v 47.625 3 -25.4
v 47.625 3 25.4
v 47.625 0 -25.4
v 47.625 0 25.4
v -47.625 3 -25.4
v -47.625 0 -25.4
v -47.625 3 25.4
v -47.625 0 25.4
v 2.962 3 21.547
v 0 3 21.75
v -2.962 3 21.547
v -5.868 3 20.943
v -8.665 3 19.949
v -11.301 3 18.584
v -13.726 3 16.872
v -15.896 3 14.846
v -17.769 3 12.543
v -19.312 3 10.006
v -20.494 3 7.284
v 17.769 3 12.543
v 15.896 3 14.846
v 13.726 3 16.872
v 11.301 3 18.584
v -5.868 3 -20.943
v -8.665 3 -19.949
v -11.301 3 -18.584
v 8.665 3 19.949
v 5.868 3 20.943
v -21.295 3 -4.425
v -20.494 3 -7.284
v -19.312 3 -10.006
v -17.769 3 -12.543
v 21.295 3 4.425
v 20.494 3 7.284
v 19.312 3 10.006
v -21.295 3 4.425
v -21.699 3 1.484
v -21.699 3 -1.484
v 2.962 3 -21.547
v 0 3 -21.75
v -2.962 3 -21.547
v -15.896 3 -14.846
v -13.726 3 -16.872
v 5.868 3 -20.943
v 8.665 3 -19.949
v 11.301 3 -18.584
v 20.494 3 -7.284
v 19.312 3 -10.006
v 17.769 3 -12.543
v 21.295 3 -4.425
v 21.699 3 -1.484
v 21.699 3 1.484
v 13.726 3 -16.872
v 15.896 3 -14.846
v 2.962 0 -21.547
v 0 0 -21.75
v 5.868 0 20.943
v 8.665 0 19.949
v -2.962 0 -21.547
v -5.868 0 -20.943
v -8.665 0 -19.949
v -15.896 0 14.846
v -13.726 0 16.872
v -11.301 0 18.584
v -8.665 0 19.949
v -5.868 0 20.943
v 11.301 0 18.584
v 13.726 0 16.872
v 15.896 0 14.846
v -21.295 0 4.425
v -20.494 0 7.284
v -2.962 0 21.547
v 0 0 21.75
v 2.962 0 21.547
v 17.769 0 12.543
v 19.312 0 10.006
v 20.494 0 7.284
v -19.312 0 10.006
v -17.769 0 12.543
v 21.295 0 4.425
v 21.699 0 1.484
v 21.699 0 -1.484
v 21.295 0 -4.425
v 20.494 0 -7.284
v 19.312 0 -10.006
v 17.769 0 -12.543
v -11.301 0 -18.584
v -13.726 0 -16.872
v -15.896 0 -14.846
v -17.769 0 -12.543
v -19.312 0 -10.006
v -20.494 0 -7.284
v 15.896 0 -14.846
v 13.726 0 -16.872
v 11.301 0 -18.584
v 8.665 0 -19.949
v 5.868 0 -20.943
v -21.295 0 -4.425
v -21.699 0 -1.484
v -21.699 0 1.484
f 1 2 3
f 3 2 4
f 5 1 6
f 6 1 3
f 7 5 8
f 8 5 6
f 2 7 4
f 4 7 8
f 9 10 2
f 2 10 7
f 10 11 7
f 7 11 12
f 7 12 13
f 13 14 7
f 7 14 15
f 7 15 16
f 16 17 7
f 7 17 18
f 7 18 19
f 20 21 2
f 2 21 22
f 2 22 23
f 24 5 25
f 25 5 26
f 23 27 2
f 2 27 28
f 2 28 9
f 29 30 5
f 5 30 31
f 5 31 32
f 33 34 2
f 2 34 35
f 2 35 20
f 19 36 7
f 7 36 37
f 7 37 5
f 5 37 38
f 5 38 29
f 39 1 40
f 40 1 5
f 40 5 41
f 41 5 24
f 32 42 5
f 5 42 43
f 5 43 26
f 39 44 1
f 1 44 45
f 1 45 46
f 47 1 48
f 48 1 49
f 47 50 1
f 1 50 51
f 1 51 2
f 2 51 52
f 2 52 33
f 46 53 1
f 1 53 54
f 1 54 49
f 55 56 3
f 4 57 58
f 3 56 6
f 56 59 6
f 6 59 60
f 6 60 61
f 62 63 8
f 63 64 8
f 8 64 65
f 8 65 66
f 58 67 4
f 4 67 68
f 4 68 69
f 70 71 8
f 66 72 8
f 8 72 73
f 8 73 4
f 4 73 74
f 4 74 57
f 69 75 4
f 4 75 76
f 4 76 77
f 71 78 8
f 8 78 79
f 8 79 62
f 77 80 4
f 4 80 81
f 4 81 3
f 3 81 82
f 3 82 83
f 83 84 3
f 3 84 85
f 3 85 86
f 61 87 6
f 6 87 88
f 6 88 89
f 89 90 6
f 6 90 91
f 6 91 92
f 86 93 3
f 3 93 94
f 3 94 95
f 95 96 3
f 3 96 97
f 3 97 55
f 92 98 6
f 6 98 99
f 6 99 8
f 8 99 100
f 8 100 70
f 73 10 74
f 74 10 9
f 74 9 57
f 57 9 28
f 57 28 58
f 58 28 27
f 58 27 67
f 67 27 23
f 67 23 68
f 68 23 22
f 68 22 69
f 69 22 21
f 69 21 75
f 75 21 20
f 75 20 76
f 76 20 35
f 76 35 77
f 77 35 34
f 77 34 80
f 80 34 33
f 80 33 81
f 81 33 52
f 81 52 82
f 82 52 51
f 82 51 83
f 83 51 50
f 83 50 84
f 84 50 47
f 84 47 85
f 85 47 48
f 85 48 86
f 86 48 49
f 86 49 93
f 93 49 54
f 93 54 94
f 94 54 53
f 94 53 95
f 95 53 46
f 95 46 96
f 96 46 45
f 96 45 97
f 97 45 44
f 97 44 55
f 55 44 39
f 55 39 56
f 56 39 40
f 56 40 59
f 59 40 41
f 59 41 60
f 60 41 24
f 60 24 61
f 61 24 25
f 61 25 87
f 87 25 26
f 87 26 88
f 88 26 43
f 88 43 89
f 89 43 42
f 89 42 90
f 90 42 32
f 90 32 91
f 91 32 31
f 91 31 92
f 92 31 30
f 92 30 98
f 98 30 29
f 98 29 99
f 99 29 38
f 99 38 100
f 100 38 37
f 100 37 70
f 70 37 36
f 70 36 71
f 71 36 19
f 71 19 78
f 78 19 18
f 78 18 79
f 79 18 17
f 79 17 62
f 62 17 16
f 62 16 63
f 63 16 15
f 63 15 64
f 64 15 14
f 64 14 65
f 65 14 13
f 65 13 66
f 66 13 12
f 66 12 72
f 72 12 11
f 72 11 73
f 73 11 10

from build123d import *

# Parameters (mm, degrees)
SKETCH1_W               = 95.25
SKETCH1_H               = 50.8
BOSS_EXTRUDE1_DEPTH     = 3
CUT_EXTRUDE1_DEPTH      = 55.058307641
CUT_EXTRUDE1_DEPTH_BACK = 55.058307641
SKETCH2_R               = 21.75


with BuildPart() as part:
    # Sketch1 → Boss-Extrude1 (new body)
    with BuildSketch(Plane(origin=(0, 0, 0), x_dir=(1, 0, 0), z_dir=(0, 1, 0))):
        Rectangle(SKETCH1_W, SKETCH1_H)
    extrude(amount=BOSS_EXTRUDE1_DEPTH)

    # Sketch2 → Cut-Extrude1 (cut, two sides: drawn at the far end of the back side and taken through both)
    with BuildSketch(Plane(origin=(0, 3, 0), x_dir=(1, 0, 0), z_dir=(0, 1, 0)).offset(-CUT_EXTRUDE1_DEPTH_BACK)):
        with Locations(Location((0, 0, 0), (0, 0, 270))):
            Circle(SKETCH2_R)
    extrude(amount=CUT_EXTRUDE1_DEPTH + CUT_EXTRUDE1_DEPTH_BACK, mode=Mode.SUBTRACT)


solid = part.part
